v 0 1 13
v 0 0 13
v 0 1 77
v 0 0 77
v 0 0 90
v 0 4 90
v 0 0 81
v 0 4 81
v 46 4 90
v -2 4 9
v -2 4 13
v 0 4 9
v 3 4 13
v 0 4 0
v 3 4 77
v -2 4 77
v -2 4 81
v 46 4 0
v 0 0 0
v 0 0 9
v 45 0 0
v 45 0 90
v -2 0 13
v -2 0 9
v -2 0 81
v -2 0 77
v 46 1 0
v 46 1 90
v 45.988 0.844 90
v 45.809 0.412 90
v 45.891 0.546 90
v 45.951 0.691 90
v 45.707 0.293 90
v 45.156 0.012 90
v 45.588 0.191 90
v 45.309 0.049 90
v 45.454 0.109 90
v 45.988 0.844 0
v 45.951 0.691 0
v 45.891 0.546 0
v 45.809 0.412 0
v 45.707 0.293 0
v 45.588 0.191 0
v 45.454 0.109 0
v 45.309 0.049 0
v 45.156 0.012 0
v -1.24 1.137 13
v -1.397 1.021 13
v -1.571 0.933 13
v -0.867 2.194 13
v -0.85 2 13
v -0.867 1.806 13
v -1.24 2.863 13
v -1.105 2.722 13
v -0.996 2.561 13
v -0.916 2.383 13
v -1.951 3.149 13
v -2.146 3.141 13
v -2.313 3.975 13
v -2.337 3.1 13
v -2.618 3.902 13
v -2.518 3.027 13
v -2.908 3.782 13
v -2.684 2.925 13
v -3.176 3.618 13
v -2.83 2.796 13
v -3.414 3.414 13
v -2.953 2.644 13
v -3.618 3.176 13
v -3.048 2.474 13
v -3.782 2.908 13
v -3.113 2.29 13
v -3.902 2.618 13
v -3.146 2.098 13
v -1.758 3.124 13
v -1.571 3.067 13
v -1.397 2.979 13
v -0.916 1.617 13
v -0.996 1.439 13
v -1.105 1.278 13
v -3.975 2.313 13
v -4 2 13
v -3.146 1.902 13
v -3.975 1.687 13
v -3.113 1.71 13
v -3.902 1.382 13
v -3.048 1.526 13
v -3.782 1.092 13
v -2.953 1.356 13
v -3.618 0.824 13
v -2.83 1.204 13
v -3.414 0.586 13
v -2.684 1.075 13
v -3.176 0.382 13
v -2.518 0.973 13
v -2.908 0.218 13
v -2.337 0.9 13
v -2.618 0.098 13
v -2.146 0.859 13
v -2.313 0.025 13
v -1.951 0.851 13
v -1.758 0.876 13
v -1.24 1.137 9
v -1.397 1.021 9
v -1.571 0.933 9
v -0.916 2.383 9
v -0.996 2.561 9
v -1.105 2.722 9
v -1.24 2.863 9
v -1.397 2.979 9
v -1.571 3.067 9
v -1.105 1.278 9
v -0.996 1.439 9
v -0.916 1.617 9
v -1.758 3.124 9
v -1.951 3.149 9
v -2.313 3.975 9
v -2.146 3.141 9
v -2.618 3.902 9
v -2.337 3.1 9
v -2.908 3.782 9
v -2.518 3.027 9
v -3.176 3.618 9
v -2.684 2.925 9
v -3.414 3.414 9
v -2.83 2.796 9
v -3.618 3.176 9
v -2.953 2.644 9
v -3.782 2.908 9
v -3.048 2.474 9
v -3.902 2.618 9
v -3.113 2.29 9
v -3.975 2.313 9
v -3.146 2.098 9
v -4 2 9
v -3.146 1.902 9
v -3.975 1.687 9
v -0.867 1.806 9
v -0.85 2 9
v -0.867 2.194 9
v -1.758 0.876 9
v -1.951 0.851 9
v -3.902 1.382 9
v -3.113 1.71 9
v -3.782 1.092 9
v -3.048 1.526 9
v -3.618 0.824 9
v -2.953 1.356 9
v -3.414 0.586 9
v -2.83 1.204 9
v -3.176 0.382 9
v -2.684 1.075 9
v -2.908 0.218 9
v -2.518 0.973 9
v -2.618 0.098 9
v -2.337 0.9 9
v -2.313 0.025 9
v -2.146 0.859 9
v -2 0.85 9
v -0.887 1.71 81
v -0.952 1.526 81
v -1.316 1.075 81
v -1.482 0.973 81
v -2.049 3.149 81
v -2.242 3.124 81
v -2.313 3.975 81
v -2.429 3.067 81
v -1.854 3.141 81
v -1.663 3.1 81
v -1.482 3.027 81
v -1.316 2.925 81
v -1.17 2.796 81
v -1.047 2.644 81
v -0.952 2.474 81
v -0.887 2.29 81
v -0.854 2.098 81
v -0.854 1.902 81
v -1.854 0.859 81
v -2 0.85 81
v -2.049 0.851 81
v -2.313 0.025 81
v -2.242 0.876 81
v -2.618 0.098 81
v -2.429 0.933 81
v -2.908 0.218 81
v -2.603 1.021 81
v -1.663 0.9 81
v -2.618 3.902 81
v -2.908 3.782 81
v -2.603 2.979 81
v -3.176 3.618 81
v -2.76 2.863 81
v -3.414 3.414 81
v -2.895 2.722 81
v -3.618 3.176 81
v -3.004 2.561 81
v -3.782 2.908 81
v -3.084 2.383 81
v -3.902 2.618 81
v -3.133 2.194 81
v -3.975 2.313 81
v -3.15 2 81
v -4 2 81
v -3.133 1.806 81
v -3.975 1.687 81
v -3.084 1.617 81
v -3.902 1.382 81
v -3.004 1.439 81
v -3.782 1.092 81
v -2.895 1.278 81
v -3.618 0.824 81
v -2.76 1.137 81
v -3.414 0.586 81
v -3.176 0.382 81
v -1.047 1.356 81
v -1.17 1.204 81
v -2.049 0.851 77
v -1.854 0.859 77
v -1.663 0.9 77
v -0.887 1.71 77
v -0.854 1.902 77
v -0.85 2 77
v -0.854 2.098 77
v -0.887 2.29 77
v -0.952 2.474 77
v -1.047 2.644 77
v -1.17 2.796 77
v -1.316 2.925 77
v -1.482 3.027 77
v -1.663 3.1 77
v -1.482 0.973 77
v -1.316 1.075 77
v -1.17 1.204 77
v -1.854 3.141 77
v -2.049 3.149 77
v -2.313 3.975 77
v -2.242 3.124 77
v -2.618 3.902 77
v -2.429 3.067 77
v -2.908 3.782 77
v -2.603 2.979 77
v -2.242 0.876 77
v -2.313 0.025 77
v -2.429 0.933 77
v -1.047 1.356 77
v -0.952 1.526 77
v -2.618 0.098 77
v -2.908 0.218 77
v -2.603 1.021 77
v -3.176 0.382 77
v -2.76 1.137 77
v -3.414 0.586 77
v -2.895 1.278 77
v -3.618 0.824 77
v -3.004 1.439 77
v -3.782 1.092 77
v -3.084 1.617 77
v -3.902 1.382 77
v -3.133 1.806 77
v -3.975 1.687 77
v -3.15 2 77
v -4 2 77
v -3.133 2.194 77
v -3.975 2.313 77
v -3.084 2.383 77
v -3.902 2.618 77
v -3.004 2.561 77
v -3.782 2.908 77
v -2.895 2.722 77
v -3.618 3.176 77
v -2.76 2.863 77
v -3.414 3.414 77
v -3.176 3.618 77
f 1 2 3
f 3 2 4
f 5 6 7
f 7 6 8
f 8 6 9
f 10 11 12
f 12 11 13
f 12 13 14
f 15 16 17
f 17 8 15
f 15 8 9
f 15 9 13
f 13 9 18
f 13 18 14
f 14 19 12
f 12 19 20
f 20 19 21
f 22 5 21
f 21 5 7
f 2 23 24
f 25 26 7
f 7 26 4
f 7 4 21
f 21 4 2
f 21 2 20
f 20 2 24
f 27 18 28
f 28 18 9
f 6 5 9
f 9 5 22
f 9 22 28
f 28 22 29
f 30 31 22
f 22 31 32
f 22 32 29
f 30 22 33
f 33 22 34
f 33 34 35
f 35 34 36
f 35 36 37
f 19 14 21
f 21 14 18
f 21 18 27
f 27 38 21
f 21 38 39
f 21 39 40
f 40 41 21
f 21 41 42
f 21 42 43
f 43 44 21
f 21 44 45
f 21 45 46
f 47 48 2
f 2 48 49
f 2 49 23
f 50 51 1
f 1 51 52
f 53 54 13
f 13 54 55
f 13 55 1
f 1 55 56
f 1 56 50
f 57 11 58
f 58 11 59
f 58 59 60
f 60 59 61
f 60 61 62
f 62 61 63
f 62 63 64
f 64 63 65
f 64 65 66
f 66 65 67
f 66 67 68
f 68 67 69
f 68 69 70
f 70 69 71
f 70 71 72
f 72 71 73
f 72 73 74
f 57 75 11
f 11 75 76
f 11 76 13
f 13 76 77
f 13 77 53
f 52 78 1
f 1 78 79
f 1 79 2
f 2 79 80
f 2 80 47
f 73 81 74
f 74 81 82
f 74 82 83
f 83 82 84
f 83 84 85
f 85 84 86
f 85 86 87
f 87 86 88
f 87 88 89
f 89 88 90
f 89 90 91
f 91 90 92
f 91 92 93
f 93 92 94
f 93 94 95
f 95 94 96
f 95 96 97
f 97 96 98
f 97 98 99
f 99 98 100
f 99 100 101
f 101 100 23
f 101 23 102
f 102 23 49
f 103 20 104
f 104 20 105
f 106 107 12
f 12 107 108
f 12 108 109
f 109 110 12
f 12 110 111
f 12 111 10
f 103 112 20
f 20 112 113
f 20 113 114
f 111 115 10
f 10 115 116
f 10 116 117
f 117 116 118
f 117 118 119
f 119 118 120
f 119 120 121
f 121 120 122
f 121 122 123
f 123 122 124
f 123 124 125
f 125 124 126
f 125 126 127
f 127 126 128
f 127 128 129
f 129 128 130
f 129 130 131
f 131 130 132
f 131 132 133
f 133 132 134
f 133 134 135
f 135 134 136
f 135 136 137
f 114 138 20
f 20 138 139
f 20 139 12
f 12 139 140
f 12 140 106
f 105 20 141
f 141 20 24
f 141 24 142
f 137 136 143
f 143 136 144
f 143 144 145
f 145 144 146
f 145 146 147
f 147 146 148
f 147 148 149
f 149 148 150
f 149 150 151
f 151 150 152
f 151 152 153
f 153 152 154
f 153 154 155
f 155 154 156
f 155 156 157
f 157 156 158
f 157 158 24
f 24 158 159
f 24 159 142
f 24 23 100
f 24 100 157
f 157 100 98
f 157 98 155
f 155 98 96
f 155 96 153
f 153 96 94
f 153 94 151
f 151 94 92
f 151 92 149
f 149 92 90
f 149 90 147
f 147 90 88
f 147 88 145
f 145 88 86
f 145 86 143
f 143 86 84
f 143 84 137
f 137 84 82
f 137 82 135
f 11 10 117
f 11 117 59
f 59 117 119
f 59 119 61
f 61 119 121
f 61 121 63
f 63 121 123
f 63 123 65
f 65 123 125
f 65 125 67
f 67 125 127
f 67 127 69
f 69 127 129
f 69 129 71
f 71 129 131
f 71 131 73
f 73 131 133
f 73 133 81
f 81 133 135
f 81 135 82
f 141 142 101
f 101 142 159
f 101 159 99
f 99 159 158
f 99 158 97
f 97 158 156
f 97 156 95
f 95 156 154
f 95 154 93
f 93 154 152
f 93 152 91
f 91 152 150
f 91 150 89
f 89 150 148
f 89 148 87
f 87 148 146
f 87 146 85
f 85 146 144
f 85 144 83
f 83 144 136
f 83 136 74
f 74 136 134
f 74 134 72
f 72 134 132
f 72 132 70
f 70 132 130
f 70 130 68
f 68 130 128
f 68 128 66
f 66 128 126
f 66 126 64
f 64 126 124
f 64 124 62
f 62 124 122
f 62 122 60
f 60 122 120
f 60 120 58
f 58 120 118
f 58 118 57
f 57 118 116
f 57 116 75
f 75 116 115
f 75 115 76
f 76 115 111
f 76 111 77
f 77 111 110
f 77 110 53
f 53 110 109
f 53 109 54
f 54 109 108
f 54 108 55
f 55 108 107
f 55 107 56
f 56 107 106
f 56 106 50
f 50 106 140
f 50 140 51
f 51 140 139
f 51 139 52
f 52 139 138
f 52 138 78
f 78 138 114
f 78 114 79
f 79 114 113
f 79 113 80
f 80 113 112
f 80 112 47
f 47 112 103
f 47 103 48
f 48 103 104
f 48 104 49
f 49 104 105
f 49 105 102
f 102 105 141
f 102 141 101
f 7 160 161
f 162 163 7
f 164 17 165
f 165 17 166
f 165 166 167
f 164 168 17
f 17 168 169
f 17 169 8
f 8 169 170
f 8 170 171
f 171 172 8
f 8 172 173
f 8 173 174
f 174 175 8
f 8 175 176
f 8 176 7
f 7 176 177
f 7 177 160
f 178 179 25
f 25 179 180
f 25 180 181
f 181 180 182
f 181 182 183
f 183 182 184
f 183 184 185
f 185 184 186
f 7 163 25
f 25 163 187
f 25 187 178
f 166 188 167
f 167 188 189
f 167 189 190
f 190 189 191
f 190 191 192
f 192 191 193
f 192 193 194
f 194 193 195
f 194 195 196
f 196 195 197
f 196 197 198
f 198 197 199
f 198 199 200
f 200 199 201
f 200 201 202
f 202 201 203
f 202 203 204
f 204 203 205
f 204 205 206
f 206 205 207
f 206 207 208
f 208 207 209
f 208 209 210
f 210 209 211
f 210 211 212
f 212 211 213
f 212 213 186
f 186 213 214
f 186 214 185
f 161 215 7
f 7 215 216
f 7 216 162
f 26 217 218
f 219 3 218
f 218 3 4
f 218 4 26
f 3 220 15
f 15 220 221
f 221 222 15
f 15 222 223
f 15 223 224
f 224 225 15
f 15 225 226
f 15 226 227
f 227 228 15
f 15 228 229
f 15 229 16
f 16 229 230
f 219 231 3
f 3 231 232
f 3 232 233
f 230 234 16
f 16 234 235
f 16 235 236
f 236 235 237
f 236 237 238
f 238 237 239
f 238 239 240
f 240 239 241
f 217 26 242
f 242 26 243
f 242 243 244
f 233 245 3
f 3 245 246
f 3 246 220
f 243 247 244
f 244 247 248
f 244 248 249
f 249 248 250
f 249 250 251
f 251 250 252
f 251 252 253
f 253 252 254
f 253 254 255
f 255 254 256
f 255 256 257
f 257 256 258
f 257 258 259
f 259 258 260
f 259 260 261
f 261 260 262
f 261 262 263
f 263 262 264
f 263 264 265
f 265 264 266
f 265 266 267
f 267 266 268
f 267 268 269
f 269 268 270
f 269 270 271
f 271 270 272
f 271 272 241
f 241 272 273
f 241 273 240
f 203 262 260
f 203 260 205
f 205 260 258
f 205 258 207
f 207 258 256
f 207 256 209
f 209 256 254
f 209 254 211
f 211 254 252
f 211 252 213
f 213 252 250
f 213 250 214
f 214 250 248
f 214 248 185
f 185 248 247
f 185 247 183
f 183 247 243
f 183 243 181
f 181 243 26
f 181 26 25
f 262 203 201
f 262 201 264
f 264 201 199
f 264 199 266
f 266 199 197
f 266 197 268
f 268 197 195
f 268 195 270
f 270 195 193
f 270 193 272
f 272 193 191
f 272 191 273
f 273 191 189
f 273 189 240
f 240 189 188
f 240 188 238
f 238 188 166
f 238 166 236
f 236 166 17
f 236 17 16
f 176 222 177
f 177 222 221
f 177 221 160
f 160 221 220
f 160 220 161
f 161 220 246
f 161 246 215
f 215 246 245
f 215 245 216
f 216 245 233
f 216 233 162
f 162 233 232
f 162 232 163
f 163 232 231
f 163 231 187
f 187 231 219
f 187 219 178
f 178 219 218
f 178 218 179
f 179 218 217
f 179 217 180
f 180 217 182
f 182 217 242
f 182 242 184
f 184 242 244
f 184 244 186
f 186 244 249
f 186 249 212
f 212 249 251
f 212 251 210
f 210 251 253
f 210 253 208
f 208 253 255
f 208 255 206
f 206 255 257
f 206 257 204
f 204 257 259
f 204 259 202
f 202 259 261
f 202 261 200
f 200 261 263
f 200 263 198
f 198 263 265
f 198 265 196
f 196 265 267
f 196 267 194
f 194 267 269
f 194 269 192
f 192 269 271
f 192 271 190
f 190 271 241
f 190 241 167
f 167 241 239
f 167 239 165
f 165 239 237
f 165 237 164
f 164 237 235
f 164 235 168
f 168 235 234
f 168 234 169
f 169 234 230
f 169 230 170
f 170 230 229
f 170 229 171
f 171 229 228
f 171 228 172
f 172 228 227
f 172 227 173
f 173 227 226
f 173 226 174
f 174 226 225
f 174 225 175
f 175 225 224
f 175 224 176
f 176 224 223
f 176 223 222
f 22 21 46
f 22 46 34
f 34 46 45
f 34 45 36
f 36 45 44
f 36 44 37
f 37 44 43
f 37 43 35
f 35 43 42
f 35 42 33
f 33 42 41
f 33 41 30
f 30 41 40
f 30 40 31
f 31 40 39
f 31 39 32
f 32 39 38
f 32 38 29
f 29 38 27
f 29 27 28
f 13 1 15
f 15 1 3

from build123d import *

# Parameters (mm, degrees)
SKETCH_2_W             = 46
SKETCH_2_H             = 4
EXTRUDE_1_DEPTH        = 90
SKETCH_3_W             = 4
SKETCH_3_H             = 4
EXTRUDE_2_DEPTH        = 4
FILLET_1_R             = 2
CUT_EXTRUDE_1_REACH    = 91.783
SKETCH_4_R             = 1.15
FILLET_1_OF_MIRROR_3_R = 2
FILLET_2_R             = 1
CHAMFER_1_SIZE         = 3


with BuildPart() as part:
    # 草图2 → 凸台-拉伸1 (new body)
    with BuildSketch(Plane.XY):
        with Locations((23, 2)):
            Rectangle(SKETCH_2_W, SKETCH_2_H)
    extrude(amount=EXTRUDE_1_DEPTH)

    # 草图3 → 凸台-拉伸2 (add)
    with BuildSketch(Plane.ZY):
        with Locations((11, 2)):
            Rectangle(SKETCH_3_W, SKETCH_3_H)
    extrude_2 = extrude(amount=EXTRUDE_2_DEPTH)

    # 圆角1
    fillet_1_edges = [part.edges().sort_by_distance(p)[0] for p in [
        (-4, 4, 11),
        (-4, 0, 11),
    ]]
    fillet(fillet_1_edges, radius=FILLET_1_R - 0.0001)  # a hair under: the kernel refuses the full size

    # 草图4 → 切除-拉伸1 (cut, up to next)
    with BuildSketch(Plane.XY.offset(13), mode=Mode.PRIVATE) as cut_extrude_1_sk1:
        with Locations((-2, 2)):
            Circle(SKETCH_4_R)
    cut_extrude_1_tool1 = extrude(cut_extrude_1_sk1.sketch, amount=-CUT_EXTRUDE_1_REACH, mode=Mode.PRIVATE) & part.part
    cut_extrude_1 = cut_extrude_1_tool1.solids().sort_by_distance((-2, 2, 13))[0]
    add(cut_extrude_1, mode=Mode.SUBTRACT)

    # 镜向3: 凸台-拉伸2, 切除-拉伸1 across plane
    add(extrude_2.mirror(Plane(origin=(0, 0, 45), x_dir=(1, 0, 0), z_dir=(0, 0, -1))))
    add(cut_extrude_1.mirror(Plane(origin=(0, 0, 45), x_dir=(1, 0, 0), z_dir=(0, 0, -1))), mode=Mode.SUBTRACT)

    # 圆角1 of 镜向3
    fillet_1_of_mirror_3_edges = [part.edges().sort_by_distance(p)[0] for p in [
        (-4, 4, 79),
        (-4, 0, 79),
    ]]
    fillet(fillet_1_of_mirror_3_edges, radius=FILLET_1_OF_MIRROR_3_R - 0.0001)  # a hair under: the kernel refuses the full size

    # 圆角2
    fillet_2_edges = [part.edges().sort_by_distance(p)[0] for p in [
        (46, 0, 45),
    ]]
    fillet(fillet_2_edges, radius=FILLET_2_R)

    # 倒角1
    chamfer_1_edges = [part.edges().sort_by_distance(p)[0] for p in [
        (0, 4, 45),
    ]]
    chamfer(chamfer_1_edges, length=CHAMFER_1_SIZE)


solid = part.part
